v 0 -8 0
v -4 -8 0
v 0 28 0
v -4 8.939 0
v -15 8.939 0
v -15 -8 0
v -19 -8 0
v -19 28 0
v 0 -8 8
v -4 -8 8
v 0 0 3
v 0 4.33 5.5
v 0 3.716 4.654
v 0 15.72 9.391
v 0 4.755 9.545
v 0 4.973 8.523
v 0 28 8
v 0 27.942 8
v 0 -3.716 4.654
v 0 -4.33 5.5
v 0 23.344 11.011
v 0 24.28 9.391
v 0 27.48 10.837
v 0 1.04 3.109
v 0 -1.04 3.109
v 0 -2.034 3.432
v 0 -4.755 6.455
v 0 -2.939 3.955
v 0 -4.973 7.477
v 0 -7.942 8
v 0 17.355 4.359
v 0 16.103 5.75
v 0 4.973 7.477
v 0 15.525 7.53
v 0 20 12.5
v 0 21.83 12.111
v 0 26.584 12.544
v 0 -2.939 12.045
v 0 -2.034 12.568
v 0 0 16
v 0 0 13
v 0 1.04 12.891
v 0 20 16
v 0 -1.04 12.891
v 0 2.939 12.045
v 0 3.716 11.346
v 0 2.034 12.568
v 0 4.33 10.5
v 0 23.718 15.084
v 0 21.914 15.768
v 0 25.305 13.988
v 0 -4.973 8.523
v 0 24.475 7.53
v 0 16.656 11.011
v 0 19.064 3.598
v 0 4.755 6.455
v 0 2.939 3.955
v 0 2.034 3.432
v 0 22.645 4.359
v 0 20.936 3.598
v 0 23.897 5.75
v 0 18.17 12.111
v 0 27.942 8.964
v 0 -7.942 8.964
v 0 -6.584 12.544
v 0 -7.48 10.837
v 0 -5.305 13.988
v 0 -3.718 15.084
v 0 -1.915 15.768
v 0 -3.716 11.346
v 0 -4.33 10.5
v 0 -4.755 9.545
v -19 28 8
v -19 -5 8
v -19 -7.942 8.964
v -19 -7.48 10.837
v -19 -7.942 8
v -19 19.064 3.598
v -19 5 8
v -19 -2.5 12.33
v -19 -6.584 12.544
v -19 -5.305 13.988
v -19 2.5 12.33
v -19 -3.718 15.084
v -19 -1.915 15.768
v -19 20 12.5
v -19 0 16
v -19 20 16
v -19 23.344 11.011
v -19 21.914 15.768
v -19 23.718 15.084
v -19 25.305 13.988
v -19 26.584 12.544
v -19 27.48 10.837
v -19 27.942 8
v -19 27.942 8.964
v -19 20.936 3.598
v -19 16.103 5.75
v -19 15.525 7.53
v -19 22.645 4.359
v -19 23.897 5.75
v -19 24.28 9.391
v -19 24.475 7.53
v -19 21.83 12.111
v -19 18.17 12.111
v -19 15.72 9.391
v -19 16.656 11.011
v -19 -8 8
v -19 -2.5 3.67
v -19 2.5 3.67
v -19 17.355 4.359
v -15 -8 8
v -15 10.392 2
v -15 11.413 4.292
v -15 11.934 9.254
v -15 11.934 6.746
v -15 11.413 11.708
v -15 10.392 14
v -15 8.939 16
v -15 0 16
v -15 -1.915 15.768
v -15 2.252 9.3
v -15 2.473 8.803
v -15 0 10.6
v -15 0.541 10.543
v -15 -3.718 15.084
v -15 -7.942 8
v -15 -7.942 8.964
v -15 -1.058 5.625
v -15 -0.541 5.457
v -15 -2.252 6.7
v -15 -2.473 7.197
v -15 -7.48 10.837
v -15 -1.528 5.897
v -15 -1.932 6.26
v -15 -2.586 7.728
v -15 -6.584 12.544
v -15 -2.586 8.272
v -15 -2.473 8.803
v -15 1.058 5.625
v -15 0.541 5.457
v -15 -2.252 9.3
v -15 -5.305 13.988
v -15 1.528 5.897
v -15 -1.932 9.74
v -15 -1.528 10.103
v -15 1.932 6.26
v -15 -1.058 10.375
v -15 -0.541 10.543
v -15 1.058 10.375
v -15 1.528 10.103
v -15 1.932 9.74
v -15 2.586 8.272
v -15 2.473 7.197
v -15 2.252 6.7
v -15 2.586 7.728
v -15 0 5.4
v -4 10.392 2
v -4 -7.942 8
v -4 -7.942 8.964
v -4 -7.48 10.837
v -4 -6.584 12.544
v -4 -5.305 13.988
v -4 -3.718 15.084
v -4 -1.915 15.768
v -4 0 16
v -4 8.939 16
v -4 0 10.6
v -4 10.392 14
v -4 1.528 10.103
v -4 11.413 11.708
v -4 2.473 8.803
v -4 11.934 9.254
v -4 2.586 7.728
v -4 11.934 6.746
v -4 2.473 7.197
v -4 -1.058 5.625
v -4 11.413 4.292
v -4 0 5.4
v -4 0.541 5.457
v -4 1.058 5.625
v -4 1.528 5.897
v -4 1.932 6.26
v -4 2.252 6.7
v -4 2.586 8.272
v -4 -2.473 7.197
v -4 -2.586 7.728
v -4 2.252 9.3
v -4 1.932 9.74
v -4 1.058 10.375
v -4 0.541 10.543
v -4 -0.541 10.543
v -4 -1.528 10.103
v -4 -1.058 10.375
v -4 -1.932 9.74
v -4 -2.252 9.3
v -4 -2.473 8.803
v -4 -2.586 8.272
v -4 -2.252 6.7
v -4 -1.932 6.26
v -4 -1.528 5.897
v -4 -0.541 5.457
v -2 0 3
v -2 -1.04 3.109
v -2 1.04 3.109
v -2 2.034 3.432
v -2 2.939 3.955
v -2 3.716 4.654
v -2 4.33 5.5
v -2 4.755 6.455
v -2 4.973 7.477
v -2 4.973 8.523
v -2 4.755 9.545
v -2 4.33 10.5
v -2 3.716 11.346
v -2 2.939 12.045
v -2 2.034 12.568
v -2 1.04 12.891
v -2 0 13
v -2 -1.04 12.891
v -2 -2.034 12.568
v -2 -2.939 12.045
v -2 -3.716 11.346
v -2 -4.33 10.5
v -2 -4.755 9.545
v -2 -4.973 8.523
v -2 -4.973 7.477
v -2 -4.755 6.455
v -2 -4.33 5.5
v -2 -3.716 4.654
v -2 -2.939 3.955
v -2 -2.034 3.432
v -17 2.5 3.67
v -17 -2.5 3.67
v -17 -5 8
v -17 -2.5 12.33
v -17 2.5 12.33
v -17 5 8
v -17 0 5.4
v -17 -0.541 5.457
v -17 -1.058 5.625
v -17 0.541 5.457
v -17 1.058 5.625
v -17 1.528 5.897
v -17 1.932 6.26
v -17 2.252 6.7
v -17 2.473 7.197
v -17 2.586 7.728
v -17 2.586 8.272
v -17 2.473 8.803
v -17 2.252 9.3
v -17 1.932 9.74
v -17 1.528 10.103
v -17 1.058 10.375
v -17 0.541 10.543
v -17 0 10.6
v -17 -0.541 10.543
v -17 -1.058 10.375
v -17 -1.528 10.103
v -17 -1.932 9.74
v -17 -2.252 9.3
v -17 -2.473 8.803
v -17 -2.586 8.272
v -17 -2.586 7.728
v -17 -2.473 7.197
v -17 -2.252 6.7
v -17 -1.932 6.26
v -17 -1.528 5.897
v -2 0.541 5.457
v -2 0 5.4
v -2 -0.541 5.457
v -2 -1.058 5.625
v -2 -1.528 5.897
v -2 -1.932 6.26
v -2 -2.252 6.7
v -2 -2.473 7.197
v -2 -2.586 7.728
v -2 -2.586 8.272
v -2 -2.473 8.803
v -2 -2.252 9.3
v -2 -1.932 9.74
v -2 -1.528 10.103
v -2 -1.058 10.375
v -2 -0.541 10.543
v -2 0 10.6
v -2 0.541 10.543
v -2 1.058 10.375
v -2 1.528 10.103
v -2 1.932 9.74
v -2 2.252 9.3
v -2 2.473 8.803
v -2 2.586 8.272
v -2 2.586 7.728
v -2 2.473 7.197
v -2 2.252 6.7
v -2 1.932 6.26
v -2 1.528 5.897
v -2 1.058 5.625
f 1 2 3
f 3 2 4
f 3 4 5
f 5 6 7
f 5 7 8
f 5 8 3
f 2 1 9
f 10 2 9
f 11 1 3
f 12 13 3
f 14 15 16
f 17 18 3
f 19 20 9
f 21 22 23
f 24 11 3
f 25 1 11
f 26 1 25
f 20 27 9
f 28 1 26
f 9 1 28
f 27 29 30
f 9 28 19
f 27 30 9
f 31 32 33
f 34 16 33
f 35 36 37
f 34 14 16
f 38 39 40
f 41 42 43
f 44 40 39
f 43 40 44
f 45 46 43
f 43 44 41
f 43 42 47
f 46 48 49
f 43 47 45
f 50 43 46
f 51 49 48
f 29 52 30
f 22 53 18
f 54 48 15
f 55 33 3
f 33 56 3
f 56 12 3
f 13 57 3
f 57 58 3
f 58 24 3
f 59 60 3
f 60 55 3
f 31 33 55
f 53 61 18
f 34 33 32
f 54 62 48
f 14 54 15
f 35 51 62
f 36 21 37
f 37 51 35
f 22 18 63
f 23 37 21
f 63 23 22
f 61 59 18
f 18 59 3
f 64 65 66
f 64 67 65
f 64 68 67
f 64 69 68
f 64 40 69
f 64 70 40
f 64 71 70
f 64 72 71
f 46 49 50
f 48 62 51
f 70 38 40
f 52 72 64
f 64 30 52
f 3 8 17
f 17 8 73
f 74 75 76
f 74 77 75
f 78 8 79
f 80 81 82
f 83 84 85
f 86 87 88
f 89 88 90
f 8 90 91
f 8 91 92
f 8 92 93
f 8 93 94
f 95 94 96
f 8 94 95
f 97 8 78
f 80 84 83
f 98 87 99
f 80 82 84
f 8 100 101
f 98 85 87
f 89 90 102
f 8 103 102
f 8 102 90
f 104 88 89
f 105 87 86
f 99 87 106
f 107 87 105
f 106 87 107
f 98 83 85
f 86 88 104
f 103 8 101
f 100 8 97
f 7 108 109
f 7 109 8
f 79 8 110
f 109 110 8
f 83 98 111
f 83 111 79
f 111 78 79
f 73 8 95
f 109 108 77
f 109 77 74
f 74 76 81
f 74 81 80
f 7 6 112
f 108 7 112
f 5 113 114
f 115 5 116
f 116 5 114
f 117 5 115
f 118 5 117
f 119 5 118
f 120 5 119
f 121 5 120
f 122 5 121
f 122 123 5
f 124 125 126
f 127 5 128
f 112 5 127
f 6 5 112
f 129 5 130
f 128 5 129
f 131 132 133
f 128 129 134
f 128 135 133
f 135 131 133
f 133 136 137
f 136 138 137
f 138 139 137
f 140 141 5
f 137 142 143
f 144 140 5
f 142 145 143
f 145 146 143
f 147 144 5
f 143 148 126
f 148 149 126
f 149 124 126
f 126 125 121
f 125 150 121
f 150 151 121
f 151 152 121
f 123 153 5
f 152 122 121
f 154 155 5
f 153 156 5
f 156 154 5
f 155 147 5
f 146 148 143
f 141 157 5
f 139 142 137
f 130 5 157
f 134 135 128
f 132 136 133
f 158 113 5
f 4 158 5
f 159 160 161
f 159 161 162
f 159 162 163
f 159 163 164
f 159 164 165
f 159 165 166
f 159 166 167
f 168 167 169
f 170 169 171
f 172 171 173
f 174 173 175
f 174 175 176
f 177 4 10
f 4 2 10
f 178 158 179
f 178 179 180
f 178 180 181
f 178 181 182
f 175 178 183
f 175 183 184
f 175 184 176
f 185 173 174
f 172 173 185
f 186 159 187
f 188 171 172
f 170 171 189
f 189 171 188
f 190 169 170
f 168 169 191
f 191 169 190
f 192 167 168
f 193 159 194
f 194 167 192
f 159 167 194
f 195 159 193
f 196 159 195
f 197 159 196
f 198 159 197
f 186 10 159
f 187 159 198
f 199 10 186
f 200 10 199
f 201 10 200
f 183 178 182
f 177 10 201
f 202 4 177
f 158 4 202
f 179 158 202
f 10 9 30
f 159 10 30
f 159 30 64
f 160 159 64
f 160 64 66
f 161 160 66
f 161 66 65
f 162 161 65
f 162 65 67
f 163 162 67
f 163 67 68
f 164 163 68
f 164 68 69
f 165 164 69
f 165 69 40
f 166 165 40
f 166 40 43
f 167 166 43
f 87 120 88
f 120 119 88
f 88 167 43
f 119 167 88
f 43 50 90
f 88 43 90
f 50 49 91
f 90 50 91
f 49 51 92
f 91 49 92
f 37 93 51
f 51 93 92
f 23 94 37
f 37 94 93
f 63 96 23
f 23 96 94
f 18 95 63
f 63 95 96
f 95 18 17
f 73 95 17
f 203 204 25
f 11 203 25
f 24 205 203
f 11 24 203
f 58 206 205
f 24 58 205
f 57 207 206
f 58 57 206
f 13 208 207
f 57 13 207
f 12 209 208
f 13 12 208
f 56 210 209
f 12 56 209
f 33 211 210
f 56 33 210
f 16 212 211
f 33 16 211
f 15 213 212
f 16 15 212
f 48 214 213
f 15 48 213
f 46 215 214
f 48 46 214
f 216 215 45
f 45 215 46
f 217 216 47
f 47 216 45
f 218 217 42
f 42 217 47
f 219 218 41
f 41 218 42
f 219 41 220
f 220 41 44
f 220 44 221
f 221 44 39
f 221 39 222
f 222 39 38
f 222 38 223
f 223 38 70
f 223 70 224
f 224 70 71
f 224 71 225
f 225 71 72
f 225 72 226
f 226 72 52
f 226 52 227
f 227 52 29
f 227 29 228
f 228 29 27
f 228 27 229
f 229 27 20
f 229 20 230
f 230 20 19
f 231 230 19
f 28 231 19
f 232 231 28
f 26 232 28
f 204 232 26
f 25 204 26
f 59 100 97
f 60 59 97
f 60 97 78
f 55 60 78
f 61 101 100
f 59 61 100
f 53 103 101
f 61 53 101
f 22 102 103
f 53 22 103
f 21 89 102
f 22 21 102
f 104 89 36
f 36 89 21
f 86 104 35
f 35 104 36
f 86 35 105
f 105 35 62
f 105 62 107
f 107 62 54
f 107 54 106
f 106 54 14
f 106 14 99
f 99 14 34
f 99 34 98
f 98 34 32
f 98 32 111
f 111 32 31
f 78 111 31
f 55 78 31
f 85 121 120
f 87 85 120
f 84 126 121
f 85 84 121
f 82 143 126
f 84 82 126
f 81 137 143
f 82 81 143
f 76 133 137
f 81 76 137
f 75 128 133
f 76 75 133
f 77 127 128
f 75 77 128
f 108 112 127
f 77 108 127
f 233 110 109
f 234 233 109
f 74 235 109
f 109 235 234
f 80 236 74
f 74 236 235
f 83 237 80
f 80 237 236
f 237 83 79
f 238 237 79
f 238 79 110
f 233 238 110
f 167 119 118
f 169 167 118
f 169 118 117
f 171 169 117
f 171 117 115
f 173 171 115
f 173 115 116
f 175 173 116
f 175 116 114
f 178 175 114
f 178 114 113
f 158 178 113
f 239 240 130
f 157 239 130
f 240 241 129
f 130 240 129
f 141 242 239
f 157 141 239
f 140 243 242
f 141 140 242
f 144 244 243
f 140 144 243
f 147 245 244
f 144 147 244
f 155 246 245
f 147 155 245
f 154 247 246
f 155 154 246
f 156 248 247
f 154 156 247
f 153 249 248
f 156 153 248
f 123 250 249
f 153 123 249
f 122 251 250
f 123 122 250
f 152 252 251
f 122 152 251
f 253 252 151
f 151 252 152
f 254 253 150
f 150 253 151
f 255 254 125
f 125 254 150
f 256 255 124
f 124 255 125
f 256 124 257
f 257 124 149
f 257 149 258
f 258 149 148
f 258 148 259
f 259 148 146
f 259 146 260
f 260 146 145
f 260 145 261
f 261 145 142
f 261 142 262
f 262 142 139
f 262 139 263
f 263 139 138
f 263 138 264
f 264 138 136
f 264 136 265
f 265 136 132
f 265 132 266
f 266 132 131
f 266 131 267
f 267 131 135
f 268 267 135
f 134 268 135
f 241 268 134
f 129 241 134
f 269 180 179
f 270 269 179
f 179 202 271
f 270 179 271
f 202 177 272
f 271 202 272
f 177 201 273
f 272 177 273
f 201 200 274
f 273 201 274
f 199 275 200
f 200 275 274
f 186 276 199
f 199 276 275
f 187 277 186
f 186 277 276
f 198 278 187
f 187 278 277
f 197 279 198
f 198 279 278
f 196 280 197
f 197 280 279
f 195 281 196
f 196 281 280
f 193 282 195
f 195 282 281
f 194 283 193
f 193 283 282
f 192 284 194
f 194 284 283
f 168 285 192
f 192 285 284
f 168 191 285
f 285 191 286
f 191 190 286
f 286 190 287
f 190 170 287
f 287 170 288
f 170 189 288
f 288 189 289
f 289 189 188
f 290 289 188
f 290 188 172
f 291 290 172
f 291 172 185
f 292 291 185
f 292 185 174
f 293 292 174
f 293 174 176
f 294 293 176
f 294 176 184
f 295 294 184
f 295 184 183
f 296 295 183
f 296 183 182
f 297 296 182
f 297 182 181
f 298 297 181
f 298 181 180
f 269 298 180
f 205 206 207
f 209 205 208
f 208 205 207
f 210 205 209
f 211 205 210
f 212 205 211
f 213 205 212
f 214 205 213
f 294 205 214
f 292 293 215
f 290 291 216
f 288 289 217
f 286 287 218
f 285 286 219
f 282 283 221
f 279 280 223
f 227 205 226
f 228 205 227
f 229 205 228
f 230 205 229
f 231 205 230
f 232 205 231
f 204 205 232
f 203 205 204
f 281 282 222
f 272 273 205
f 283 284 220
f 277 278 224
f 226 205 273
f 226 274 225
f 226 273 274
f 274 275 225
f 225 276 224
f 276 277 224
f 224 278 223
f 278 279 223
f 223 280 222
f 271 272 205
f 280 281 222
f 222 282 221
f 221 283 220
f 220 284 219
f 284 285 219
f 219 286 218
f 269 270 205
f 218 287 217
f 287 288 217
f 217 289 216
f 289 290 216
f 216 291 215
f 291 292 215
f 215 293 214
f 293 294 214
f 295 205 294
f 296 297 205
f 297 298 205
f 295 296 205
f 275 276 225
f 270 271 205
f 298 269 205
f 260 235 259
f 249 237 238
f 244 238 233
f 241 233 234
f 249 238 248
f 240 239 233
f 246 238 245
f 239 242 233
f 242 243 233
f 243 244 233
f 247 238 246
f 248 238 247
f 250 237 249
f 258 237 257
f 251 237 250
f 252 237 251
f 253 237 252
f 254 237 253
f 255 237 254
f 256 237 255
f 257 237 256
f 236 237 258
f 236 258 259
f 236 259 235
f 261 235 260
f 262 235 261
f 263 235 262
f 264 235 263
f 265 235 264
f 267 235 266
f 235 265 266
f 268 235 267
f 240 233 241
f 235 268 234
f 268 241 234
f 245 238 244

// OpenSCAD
// PRUSA iteration3
// Y idler
// GNU GPL v3
// Josef Průša <iam@josefprusa.cz> and contributors
// http://www.reprap.org/wiki/Prusa_Mendel
// http://prusamendel.org


module y_idler_base(){
 translate(v = [0,0,0]) cylinder(h = 19, r=8);	
 translate(v = [0,20,0]) cylinder(h = 19, r=8);
 translate(v = [0,10,9.5]) cube(size = [16,20,19], center=true);
 translate(v = [-4,10,9.5]) cube(size = [8,16+20,19], center=true);
}

module y_idler_holes(){
// translate(v = [0,0,-1]) cylinder(h = 120, r=2.9, $fn=30);	
 translate(v = [0,20,-1]) cylinder(h = 25, r=4.5);
 translate(v = [0,0,4]) cylinder(h = 11, r=12);


 translate(v=[0,0,-1]) cylinder(h = 21, r=2.6, $fn=30);
 translate(v=[0,0,-0.1]) cylinder(h = 2.1, r=5.0, $fn=30);
 translate(v=[0,0,17]) rotate(a=[0,0,30]) cylinder(h = 2.1, r=5.0, $fn=6);
}

// Final part
module y_idler(){
 translate(v = [0,0,8])rotate([0,-90,0]) difference(){
  y_idler_base();
  y_idler_holes();
 }
}

y_idler();
